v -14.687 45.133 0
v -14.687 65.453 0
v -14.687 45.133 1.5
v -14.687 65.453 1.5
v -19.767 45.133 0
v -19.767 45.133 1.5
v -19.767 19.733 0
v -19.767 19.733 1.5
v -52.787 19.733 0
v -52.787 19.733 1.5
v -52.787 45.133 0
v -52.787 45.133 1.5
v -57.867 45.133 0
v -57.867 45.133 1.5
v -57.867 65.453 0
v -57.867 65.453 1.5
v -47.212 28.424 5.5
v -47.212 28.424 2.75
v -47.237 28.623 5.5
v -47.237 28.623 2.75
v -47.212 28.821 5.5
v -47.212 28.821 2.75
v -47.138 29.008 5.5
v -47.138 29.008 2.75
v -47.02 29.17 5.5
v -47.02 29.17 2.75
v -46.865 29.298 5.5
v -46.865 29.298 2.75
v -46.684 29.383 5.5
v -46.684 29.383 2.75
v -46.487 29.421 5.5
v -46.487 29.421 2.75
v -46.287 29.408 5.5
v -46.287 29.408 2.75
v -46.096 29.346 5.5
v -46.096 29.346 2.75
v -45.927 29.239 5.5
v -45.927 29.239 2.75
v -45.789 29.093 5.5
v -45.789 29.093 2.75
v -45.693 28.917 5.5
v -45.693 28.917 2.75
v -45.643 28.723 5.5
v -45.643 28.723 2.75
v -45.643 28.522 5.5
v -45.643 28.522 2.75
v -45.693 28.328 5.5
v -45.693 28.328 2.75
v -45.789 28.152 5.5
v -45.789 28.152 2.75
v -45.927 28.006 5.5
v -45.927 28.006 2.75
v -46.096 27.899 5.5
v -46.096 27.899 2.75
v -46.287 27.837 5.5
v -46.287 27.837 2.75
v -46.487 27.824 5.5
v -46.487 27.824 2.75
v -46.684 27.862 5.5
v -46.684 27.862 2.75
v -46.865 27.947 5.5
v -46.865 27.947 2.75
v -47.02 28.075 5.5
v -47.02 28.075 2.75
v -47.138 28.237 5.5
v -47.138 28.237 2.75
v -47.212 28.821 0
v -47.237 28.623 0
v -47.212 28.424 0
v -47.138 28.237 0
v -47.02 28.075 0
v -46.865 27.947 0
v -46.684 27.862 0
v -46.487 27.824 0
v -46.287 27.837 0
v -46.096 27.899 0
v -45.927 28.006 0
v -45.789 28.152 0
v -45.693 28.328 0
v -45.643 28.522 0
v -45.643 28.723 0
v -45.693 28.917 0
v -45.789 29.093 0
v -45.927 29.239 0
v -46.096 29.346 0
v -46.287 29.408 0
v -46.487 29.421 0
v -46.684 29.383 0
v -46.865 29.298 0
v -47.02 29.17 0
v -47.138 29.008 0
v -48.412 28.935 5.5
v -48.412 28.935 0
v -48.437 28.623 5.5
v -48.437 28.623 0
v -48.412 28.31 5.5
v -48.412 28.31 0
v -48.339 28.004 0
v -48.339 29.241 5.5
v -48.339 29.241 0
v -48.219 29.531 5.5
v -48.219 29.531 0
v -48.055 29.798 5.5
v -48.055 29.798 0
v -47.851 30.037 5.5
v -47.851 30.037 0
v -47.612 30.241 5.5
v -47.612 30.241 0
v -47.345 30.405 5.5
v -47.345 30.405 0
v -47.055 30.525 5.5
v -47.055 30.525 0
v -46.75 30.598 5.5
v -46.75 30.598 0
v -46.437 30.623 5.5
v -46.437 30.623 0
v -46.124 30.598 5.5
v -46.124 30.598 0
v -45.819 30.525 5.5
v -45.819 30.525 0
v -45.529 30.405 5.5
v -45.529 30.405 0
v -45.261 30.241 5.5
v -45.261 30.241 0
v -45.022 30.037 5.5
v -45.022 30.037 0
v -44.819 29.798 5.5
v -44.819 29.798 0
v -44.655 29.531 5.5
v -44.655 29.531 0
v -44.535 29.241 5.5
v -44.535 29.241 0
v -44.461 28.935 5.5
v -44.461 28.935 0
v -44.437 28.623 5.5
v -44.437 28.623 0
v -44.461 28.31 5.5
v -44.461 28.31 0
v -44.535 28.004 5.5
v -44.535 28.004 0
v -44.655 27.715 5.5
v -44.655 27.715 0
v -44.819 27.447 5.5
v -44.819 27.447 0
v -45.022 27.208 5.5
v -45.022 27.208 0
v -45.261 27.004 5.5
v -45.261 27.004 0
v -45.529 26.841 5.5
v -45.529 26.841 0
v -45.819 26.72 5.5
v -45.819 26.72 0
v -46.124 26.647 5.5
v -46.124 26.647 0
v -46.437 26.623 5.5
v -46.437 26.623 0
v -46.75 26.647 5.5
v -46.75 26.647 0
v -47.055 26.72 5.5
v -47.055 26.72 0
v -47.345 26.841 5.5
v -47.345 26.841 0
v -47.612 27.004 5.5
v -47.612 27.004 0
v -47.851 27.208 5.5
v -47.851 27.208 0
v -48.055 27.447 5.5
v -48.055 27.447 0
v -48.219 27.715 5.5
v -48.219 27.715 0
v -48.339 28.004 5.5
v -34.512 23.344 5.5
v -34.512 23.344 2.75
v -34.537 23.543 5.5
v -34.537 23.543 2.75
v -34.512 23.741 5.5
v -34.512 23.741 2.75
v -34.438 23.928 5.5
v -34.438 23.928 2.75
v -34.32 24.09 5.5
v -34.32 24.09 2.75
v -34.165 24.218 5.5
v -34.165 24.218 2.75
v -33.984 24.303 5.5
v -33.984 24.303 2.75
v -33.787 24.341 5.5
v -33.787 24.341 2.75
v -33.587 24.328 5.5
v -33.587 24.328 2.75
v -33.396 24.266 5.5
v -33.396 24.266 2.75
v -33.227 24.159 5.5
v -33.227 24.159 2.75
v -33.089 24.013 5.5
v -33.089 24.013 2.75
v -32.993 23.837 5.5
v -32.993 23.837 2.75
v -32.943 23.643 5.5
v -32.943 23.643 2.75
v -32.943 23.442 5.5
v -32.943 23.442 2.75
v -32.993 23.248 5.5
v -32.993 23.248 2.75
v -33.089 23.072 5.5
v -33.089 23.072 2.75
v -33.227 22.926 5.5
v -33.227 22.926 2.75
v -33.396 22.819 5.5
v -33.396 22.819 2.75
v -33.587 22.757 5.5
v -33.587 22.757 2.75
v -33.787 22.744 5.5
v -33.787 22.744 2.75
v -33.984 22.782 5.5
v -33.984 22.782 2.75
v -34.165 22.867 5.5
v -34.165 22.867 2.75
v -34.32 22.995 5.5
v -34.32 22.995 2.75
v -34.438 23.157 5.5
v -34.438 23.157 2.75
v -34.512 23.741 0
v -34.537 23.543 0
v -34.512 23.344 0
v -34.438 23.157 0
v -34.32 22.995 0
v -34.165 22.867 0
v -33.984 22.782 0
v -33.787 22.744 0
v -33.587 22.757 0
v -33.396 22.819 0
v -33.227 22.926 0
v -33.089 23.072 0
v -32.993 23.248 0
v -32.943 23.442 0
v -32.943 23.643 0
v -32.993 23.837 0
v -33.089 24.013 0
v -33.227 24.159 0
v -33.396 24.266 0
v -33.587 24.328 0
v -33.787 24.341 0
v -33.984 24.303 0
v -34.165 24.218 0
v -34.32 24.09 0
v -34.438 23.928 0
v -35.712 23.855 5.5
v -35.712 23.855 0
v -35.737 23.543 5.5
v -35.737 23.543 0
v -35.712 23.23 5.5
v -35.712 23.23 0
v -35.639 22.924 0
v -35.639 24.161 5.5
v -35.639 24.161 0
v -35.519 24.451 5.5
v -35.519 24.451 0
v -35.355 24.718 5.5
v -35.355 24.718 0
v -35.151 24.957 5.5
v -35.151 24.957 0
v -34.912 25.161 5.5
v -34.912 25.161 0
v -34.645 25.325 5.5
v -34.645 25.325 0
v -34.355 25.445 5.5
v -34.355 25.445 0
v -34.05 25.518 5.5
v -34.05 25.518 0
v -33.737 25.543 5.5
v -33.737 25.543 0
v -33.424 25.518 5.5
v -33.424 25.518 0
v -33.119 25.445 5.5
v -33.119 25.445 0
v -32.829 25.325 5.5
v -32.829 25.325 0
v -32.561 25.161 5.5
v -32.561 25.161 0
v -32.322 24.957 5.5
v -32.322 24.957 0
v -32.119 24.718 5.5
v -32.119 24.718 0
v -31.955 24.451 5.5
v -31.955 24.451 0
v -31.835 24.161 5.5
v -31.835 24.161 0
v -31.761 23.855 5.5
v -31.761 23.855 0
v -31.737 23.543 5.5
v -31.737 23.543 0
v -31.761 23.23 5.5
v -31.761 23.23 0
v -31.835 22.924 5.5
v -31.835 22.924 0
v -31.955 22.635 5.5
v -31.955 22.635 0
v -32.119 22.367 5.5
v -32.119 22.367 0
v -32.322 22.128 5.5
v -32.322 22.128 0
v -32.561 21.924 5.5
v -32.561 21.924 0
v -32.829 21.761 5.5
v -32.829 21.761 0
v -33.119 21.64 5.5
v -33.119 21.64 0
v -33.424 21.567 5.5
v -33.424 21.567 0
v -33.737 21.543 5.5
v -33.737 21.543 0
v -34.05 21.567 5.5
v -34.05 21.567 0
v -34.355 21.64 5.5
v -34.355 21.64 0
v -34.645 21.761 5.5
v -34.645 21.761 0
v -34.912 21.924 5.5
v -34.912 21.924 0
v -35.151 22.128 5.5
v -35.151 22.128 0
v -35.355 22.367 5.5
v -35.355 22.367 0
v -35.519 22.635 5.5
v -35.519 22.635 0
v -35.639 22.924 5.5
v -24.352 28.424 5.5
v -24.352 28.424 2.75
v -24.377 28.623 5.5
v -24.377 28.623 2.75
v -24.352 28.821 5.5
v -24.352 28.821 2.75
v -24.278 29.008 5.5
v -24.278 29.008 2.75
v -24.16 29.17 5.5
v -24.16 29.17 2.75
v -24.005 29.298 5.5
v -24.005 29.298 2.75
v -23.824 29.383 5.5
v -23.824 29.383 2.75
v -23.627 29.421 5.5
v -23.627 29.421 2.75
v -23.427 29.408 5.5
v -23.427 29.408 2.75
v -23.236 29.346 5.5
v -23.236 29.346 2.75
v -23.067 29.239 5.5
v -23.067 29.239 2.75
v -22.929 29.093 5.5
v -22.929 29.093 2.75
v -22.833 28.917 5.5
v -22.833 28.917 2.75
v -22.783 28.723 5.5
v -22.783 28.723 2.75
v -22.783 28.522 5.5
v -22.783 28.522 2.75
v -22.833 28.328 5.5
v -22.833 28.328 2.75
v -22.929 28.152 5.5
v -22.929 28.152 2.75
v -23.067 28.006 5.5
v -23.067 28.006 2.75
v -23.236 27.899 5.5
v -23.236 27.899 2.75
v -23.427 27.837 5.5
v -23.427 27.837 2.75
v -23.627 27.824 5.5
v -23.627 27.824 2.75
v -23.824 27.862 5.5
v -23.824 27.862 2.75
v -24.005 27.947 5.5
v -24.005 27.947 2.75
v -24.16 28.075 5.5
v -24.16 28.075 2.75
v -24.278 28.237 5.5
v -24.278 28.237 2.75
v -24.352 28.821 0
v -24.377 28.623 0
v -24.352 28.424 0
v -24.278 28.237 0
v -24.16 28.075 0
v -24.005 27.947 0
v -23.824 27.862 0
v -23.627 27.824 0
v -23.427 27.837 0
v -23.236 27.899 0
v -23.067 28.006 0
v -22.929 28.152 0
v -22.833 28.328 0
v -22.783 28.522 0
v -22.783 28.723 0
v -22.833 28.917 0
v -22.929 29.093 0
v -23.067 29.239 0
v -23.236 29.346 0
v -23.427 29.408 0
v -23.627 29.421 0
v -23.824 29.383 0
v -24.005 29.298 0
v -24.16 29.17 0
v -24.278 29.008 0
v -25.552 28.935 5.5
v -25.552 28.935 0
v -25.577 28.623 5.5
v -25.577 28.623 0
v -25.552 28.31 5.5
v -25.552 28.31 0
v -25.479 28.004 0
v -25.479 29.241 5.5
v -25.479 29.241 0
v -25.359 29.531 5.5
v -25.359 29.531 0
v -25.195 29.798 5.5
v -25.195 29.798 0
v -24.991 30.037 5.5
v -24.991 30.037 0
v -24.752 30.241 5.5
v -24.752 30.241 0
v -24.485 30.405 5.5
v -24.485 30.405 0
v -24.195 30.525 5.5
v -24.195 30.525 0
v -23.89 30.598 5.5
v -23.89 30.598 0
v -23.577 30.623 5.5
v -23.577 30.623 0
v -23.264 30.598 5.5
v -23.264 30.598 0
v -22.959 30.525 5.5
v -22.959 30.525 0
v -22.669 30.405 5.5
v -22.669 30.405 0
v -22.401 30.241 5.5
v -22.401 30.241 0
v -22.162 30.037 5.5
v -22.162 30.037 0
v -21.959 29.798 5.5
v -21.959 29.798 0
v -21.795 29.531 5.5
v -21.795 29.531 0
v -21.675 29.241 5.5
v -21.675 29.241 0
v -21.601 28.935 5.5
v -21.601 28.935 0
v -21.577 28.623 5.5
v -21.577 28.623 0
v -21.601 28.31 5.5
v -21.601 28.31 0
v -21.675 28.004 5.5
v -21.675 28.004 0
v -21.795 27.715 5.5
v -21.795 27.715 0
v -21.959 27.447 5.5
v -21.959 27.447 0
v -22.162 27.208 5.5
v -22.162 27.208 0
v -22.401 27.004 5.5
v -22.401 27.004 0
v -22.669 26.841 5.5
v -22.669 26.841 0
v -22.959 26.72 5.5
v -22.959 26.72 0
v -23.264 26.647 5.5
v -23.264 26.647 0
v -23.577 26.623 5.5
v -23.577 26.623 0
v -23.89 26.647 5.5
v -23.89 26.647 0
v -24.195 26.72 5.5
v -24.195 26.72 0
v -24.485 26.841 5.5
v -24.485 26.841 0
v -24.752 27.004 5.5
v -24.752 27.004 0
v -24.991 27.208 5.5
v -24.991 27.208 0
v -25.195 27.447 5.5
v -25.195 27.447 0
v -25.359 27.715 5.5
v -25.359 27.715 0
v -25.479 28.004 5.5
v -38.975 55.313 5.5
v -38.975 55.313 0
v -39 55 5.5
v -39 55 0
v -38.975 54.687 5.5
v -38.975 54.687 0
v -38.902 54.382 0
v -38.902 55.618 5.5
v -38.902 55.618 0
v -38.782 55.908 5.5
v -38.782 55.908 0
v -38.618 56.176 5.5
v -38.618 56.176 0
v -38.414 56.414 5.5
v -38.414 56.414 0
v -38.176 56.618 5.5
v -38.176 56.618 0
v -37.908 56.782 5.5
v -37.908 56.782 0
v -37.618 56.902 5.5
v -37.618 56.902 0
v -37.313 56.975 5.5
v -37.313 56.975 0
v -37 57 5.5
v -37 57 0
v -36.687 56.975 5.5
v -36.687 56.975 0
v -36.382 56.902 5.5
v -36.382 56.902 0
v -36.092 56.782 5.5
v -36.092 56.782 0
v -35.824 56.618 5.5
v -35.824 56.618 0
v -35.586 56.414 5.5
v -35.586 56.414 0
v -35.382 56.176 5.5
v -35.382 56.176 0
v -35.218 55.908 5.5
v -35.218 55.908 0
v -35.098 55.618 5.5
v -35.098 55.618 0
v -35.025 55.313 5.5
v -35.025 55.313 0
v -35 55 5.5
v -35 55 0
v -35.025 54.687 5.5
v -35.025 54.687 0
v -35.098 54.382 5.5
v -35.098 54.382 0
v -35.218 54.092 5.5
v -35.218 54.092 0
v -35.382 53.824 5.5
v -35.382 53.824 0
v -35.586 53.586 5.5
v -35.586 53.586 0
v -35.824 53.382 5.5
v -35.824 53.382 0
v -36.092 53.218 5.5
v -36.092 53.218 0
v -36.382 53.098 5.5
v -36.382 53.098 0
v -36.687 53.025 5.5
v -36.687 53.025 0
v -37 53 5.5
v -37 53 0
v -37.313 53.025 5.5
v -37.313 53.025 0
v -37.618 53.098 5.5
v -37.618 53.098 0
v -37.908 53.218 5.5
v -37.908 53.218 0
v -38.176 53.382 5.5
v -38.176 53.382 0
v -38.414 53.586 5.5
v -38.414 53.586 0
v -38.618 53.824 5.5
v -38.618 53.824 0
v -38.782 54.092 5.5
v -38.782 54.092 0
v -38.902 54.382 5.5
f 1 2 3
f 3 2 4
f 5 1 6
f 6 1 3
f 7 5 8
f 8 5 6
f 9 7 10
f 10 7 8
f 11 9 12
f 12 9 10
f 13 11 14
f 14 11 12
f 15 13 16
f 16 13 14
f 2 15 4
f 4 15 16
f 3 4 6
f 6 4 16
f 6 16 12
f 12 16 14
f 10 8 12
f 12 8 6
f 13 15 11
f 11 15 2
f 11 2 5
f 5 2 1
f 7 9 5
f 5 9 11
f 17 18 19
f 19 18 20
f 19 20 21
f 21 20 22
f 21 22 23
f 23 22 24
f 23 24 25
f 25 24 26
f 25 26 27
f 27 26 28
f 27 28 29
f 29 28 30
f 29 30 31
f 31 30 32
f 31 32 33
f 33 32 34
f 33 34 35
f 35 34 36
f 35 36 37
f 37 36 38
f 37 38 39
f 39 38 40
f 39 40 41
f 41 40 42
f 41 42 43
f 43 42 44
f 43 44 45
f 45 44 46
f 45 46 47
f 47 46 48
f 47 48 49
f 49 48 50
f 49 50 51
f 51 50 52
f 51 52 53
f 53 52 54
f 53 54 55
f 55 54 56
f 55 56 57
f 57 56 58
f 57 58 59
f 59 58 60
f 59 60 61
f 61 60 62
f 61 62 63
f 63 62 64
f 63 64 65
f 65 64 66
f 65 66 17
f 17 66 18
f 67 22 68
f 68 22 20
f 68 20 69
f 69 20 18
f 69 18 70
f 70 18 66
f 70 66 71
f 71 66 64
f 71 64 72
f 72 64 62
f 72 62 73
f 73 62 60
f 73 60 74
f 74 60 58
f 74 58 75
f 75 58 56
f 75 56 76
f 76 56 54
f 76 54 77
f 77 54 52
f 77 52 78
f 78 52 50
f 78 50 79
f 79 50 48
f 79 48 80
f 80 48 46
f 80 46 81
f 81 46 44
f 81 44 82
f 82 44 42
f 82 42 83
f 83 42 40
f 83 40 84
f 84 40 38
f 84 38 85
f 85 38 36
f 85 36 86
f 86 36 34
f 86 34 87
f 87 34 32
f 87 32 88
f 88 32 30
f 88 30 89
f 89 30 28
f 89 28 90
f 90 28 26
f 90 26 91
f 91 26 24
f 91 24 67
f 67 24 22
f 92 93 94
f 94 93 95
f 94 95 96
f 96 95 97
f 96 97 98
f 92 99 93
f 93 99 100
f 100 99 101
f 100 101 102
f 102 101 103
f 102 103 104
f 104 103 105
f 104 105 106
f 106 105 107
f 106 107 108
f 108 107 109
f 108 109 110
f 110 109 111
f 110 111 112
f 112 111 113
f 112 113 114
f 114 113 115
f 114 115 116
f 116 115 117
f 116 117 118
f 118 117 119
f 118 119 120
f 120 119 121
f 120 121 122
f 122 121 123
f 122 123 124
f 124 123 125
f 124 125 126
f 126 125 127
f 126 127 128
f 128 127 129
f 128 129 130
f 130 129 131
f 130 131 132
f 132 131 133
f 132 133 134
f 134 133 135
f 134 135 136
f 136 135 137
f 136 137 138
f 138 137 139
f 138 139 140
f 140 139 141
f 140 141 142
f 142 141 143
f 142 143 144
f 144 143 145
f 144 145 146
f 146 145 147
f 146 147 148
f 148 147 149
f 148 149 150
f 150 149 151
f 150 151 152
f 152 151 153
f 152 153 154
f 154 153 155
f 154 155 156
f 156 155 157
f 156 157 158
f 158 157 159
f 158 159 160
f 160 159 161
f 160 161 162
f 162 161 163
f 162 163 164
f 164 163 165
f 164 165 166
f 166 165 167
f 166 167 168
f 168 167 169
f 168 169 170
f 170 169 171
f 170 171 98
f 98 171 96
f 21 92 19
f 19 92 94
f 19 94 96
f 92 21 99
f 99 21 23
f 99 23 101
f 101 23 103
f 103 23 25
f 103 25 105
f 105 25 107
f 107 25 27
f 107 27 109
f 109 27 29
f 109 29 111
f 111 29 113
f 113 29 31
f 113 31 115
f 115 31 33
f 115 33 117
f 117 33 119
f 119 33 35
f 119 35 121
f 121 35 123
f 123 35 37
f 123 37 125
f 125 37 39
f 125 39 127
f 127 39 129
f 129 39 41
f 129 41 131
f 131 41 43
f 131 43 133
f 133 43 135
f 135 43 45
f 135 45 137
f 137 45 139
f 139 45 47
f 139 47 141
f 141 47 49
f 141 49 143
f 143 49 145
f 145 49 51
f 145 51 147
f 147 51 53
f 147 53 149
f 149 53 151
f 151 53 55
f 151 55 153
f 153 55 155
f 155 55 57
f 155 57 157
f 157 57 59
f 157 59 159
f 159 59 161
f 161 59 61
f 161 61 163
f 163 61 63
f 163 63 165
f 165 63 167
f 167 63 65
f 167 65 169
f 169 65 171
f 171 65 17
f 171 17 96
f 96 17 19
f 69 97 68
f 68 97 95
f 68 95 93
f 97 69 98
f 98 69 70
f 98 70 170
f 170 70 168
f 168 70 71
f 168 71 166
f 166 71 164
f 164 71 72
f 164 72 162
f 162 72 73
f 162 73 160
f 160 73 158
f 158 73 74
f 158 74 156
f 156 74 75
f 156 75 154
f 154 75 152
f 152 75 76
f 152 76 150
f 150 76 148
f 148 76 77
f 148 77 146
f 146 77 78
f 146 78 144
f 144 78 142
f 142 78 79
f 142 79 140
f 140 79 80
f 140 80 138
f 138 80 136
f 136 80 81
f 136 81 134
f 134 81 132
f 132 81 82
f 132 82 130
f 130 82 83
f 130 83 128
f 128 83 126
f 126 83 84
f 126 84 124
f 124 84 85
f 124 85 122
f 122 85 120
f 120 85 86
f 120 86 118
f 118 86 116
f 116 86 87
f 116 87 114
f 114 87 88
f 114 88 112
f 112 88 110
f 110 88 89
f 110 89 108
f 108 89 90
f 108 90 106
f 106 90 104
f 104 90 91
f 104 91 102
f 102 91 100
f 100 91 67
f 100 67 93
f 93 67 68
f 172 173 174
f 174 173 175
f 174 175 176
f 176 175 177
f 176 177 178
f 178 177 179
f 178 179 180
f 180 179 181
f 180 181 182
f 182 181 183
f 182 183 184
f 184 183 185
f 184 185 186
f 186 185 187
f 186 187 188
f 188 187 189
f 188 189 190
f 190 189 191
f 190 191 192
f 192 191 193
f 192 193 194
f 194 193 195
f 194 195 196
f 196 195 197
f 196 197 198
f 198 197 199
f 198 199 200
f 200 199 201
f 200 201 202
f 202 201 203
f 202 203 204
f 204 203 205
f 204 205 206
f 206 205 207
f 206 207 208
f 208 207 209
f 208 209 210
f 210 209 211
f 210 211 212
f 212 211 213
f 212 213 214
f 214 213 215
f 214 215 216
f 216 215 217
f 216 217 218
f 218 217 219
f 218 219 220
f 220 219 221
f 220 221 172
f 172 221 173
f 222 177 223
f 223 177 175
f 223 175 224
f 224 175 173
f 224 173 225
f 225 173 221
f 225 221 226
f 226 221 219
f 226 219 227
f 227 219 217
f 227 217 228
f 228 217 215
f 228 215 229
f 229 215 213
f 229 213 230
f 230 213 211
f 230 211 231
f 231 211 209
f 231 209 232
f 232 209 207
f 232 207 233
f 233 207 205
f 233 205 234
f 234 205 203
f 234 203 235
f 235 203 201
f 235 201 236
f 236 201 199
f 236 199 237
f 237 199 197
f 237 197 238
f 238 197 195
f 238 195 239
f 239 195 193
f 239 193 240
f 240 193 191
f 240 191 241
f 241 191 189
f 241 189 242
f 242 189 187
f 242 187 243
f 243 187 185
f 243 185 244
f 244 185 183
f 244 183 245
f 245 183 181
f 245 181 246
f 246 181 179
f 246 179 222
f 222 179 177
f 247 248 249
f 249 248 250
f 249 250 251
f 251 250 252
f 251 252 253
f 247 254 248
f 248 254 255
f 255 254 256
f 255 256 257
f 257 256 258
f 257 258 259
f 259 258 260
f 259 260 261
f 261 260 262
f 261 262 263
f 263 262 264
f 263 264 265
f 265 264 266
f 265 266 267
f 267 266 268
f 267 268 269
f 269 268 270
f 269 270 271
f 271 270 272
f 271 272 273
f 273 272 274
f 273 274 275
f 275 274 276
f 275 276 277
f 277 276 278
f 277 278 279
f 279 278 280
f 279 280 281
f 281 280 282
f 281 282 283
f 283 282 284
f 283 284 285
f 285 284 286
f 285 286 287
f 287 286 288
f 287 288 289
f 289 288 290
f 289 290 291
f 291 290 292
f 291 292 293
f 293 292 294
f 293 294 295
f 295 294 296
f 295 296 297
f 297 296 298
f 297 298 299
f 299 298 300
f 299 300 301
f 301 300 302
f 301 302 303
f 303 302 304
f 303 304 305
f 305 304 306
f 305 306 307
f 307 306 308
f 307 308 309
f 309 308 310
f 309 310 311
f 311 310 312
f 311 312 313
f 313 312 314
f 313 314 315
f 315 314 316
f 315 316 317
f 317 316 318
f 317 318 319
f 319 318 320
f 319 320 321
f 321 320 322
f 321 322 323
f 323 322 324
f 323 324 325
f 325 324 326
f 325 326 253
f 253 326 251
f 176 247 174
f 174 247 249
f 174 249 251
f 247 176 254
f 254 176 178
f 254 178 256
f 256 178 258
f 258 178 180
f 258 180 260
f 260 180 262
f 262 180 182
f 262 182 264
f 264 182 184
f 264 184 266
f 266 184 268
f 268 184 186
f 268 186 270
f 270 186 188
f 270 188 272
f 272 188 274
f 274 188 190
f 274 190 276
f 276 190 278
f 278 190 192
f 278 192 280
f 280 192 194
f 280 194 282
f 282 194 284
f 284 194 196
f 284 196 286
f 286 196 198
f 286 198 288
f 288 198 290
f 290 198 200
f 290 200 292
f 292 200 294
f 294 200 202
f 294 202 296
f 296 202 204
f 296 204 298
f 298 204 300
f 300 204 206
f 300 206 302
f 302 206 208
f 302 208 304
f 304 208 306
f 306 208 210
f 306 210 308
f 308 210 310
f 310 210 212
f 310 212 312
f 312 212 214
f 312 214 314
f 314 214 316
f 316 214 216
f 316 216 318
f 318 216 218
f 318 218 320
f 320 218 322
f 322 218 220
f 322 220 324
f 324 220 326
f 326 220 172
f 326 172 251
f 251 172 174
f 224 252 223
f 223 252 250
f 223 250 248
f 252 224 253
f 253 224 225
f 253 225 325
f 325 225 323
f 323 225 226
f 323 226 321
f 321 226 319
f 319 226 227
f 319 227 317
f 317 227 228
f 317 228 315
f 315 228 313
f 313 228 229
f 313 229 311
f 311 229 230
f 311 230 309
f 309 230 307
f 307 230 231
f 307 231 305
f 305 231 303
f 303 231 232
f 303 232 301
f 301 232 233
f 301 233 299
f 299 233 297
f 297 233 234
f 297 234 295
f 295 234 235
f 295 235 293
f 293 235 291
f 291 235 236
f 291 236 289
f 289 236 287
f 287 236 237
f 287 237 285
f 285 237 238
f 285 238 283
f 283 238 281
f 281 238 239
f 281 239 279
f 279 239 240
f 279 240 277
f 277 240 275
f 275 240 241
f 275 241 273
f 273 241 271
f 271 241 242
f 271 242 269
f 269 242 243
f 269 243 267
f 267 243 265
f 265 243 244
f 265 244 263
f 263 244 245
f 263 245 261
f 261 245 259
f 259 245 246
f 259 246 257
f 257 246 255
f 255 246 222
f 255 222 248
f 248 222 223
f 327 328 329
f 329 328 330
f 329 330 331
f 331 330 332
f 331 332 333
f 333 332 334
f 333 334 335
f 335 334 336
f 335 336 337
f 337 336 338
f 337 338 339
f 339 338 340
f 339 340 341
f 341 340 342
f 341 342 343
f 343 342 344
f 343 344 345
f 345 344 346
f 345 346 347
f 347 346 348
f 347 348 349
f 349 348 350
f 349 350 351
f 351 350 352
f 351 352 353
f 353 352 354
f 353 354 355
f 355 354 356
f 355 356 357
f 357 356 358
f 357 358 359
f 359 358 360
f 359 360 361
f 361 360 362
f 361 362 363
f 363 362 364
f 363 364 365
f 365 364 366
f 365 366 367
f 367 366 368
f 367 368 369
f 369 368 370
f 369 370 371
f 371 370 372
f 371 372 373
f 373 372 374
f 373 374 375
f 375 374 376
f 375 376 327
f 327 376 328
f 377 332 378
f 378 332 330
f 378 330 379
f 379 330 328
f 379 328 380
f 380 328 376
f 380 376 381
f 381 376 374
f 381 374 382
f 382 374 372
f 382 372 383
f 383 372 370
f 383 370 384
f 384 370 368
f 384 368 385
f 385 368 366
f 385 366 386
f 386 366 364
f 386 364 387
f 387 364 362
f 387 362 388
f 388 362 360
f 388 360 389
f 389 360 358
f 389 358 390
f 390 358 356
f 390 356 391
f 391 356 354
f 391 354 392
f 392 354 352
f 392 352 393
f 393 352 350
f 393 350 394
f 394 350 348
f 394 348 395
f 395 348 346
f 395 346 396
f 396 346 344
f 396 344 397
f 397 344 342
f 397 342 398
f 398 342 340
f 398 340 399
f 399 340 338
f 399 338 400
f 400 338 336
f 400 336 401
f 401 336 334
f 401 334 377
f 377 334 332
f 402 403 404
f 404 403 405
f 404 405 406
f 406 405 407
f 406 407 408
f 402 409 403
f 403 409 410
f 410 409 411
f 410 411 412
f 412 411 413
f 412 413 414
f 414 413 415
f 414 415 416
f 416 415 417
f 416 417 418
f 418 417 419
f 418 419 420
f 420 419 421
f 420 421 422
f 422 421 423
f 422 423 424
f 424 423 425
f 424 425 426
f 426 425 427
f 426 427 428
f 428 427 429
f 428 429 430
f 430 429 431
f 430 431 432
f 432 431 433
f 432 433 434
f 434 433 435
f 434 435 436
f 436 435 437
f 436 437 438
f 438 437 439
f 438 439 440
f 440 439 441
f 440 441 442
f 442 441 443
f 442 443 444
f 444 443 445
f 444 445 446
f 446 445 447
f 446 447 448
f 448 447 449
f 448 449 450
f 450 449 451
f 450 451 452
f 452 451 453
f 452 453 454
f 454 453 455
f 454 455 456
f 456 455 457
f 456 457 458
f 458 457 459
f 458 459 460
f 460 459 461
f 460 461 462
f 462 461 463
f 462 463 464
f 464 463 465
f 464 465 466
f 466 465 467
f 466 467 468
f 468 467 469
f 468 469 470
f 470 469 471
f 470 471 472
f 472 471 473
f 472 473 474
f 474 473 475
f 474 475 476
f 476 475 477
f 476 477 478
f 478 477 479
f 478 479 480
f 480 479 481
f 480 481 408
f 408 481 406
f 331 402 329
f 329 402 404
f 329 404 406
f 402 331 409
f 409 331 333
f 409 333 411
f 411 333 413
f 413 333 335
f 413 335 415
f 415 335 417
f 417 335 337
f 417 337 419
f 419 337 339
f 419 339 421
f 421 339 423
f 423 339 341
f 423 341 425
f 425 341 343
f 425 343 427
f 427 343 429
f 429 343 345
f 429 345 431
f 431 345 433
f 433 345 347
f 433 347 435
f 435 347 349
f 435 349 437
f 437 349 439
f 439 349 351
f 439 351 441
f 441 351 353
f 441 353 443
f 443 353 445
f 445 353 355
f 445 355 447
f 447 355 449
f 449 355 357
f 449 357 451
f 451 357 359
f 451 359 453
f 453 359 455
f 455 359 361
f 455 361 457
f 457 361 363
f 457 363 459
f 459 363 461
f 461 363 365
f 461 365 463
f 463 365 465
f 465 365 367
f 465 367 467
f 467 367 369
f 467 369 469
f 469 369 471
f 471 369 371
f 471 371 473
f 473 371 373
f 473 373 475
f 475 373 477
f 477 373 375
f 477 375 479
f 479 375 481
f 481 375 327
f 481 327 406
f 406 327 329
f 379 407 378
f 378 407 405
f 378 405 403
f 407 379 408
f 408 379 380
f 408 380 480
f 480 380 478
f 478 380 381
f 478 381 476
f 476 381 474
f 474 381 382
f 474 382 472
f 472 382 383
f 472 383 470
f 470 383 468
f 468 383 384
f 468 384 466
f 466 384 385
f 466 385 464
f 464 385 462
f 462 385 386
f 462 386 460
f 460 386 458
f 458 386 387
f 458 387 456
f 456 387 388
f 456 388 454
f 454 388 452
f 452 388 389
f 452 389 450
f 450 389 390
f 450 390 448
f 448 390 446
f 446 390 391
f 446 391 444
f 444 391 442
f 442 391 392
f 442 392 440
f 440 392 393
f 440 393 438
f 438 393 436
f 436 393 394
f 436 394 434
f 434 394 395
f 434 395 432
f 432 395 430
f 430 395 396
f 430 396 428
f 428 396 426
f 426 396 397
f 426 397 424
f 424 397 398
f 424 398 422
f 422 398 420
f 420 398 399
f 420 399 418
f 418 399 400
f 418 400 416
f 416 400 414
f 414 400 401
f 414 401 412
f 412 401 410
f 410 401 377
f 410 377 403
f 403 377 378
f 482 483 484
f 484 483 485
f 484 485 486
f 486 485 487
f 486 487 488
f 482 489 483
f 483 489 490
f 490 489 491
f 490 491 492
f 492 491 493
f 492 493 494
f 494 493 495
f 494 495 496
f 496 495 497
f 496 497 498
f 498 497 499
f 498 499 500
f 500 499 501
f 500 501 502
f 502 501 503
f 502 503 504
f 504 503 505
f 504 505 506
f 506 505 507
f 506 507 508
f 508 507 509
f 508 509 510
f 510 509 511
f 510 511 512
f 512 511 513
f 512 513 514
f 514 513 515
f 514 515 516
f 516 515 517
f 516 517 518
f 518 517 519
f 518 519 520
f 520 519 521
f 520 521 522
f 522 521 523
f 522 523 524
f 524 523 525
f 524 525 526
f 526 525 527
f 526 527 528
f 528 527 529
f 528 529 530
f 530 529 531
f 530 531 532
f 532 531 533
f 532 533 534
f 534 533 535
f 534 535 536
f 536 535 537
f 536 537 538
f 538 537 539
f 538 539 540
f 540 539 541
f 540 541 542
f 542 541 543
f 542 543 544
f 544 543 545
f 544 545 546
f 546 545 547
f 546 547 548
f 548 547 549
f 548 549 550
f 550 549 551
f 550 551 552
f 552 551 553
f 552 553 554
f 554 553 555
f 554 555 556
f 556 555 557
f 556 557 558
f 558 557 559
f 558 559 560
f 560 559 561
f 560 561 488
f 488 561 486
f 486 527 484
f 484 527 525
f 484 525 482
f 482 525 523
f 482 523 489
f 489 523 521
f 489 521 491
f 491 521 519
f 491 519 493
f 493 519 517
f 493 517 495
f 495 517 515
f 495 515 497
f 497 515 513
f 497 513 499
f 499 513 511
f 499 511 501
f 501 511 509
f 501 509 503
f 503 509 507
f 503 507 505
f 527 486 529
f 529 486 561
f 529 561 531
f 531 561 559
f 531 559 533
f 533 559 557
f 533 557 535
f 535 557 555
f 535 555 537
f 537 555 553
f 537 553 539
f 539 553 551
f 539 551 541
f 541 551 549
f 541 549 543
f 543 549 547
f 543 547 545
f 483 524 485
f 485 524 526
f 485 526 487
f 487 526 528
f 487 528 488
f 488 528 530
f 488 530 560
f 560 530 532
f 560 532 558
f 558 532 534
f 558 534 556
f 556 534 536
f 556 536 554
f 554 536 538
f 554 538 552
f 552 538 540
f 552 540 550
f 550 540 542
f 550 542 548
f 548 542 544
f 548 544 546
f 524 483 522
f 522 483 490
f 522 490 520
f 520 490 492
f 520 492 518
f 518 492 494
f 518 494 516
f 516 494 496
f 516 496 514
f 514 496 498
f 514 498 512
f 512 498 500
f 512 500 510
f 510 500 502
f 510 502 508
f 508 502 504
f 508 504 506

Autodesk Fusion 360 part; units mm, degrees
sketch "Sketch1" plane through (0, 0, 0) normal (0, 0, 1) x (1, 0, 0)
  line L0 (-52.7867, 65.4525) -> (-19.7667, 65.4525)
  line L1 (-19.7667, 65.4525) -> (-19.7667, 19.7325)
  line L2 (-19.7667, 19.7325) -> (-52.7867, 19.7325)
  line L3 (-52.7867, 19.7325) -> (-52.7867, 65.4525)
  line L4 (-19.7667, 65.4525) -> (-14.6867, 65.4525)
  line L5 (-14.6867, 65.4525) -> (-14.6867, 45.1325)
  line L6 (-14.6867, 45.1325) -> (-19.7667, 45.1325)
  line L7 (-19.7667, 45.1325) -> (-19.7667, 65.4525)
  line L8 (-52.7867, 65.4525) -> (-57.8667, 65.4525)
  line L9 (-57.8667, 65.4525) -> (-57.8667, 45.1325)
  line L10 (-57.8667, 45.1325) -> (-52.7867, 45.1325)
  line L11 (-52.7867, 45.1325) -> (-52.7867, 65.4525)
  circle A0 centre (-23.5767, 28.6225) radius 0.8
  circle A1 centre (-23.5767, 28.6225) radius 2
  circle A2 centre (-46.4367, 28.6225) radius 0.8
  circle A3 centre (-46.4367, 28.6225) radius 2
  circle A4 centre (-33.7367, 23.5425) radius 0.8
  circle A5 centre (-33.7367, 23.5425) radius 2
  circle A6 centre (-37, 55) radius 2
  dimension "d3" = 33.02
  dimension "d4" = 45.72
  dimension "d5" = 5.08
  dimension "d6" = 20.32
  dimension "d7" = 5.08
  dimension "d8" = 20.32
  dimension "d9" = 1.6
  dimension "d10" = 4
  dimension "d11" = 3.81
  dimension "d12" = 1.6
  dimension "d13" = 4
  dimension "d14" = 22.86
  dimension "d15" = 1.6
  dimension "d16" = 4
  dimension "d17" = 5.08
  dimension "d18" = 10.16
  dimension "d19" = 8.89
  dimension "d20" = 8.89
  dimension "d25" = 4
extrude "Extrude1" add sketch "Sketch1" along normal blind 1.5 contours L0 L1 L2 L3 L7 L11 | L3 L8 L9 L10 L11 | L1 L4 L5 L6 L7 | A0 | A1 | A2 | A3 | A4 | A5 | A6 makes body 1
extrude "Extrude2" add sketch "Sketch1" along normal blind 5.5 separate body contours A1 | A3 | A5 makes body 2 at (-44.4392, 28.5228, 3.6667) makes body 3 at (-31.7392, 23.4428, 3.6667) makes body 4 at (-21.5792, 28.5228, 3.6667)
extrude "Extrude3" add sketch "Sketch1" along normal blind 5.5 separate body contours A6 makes body 5
